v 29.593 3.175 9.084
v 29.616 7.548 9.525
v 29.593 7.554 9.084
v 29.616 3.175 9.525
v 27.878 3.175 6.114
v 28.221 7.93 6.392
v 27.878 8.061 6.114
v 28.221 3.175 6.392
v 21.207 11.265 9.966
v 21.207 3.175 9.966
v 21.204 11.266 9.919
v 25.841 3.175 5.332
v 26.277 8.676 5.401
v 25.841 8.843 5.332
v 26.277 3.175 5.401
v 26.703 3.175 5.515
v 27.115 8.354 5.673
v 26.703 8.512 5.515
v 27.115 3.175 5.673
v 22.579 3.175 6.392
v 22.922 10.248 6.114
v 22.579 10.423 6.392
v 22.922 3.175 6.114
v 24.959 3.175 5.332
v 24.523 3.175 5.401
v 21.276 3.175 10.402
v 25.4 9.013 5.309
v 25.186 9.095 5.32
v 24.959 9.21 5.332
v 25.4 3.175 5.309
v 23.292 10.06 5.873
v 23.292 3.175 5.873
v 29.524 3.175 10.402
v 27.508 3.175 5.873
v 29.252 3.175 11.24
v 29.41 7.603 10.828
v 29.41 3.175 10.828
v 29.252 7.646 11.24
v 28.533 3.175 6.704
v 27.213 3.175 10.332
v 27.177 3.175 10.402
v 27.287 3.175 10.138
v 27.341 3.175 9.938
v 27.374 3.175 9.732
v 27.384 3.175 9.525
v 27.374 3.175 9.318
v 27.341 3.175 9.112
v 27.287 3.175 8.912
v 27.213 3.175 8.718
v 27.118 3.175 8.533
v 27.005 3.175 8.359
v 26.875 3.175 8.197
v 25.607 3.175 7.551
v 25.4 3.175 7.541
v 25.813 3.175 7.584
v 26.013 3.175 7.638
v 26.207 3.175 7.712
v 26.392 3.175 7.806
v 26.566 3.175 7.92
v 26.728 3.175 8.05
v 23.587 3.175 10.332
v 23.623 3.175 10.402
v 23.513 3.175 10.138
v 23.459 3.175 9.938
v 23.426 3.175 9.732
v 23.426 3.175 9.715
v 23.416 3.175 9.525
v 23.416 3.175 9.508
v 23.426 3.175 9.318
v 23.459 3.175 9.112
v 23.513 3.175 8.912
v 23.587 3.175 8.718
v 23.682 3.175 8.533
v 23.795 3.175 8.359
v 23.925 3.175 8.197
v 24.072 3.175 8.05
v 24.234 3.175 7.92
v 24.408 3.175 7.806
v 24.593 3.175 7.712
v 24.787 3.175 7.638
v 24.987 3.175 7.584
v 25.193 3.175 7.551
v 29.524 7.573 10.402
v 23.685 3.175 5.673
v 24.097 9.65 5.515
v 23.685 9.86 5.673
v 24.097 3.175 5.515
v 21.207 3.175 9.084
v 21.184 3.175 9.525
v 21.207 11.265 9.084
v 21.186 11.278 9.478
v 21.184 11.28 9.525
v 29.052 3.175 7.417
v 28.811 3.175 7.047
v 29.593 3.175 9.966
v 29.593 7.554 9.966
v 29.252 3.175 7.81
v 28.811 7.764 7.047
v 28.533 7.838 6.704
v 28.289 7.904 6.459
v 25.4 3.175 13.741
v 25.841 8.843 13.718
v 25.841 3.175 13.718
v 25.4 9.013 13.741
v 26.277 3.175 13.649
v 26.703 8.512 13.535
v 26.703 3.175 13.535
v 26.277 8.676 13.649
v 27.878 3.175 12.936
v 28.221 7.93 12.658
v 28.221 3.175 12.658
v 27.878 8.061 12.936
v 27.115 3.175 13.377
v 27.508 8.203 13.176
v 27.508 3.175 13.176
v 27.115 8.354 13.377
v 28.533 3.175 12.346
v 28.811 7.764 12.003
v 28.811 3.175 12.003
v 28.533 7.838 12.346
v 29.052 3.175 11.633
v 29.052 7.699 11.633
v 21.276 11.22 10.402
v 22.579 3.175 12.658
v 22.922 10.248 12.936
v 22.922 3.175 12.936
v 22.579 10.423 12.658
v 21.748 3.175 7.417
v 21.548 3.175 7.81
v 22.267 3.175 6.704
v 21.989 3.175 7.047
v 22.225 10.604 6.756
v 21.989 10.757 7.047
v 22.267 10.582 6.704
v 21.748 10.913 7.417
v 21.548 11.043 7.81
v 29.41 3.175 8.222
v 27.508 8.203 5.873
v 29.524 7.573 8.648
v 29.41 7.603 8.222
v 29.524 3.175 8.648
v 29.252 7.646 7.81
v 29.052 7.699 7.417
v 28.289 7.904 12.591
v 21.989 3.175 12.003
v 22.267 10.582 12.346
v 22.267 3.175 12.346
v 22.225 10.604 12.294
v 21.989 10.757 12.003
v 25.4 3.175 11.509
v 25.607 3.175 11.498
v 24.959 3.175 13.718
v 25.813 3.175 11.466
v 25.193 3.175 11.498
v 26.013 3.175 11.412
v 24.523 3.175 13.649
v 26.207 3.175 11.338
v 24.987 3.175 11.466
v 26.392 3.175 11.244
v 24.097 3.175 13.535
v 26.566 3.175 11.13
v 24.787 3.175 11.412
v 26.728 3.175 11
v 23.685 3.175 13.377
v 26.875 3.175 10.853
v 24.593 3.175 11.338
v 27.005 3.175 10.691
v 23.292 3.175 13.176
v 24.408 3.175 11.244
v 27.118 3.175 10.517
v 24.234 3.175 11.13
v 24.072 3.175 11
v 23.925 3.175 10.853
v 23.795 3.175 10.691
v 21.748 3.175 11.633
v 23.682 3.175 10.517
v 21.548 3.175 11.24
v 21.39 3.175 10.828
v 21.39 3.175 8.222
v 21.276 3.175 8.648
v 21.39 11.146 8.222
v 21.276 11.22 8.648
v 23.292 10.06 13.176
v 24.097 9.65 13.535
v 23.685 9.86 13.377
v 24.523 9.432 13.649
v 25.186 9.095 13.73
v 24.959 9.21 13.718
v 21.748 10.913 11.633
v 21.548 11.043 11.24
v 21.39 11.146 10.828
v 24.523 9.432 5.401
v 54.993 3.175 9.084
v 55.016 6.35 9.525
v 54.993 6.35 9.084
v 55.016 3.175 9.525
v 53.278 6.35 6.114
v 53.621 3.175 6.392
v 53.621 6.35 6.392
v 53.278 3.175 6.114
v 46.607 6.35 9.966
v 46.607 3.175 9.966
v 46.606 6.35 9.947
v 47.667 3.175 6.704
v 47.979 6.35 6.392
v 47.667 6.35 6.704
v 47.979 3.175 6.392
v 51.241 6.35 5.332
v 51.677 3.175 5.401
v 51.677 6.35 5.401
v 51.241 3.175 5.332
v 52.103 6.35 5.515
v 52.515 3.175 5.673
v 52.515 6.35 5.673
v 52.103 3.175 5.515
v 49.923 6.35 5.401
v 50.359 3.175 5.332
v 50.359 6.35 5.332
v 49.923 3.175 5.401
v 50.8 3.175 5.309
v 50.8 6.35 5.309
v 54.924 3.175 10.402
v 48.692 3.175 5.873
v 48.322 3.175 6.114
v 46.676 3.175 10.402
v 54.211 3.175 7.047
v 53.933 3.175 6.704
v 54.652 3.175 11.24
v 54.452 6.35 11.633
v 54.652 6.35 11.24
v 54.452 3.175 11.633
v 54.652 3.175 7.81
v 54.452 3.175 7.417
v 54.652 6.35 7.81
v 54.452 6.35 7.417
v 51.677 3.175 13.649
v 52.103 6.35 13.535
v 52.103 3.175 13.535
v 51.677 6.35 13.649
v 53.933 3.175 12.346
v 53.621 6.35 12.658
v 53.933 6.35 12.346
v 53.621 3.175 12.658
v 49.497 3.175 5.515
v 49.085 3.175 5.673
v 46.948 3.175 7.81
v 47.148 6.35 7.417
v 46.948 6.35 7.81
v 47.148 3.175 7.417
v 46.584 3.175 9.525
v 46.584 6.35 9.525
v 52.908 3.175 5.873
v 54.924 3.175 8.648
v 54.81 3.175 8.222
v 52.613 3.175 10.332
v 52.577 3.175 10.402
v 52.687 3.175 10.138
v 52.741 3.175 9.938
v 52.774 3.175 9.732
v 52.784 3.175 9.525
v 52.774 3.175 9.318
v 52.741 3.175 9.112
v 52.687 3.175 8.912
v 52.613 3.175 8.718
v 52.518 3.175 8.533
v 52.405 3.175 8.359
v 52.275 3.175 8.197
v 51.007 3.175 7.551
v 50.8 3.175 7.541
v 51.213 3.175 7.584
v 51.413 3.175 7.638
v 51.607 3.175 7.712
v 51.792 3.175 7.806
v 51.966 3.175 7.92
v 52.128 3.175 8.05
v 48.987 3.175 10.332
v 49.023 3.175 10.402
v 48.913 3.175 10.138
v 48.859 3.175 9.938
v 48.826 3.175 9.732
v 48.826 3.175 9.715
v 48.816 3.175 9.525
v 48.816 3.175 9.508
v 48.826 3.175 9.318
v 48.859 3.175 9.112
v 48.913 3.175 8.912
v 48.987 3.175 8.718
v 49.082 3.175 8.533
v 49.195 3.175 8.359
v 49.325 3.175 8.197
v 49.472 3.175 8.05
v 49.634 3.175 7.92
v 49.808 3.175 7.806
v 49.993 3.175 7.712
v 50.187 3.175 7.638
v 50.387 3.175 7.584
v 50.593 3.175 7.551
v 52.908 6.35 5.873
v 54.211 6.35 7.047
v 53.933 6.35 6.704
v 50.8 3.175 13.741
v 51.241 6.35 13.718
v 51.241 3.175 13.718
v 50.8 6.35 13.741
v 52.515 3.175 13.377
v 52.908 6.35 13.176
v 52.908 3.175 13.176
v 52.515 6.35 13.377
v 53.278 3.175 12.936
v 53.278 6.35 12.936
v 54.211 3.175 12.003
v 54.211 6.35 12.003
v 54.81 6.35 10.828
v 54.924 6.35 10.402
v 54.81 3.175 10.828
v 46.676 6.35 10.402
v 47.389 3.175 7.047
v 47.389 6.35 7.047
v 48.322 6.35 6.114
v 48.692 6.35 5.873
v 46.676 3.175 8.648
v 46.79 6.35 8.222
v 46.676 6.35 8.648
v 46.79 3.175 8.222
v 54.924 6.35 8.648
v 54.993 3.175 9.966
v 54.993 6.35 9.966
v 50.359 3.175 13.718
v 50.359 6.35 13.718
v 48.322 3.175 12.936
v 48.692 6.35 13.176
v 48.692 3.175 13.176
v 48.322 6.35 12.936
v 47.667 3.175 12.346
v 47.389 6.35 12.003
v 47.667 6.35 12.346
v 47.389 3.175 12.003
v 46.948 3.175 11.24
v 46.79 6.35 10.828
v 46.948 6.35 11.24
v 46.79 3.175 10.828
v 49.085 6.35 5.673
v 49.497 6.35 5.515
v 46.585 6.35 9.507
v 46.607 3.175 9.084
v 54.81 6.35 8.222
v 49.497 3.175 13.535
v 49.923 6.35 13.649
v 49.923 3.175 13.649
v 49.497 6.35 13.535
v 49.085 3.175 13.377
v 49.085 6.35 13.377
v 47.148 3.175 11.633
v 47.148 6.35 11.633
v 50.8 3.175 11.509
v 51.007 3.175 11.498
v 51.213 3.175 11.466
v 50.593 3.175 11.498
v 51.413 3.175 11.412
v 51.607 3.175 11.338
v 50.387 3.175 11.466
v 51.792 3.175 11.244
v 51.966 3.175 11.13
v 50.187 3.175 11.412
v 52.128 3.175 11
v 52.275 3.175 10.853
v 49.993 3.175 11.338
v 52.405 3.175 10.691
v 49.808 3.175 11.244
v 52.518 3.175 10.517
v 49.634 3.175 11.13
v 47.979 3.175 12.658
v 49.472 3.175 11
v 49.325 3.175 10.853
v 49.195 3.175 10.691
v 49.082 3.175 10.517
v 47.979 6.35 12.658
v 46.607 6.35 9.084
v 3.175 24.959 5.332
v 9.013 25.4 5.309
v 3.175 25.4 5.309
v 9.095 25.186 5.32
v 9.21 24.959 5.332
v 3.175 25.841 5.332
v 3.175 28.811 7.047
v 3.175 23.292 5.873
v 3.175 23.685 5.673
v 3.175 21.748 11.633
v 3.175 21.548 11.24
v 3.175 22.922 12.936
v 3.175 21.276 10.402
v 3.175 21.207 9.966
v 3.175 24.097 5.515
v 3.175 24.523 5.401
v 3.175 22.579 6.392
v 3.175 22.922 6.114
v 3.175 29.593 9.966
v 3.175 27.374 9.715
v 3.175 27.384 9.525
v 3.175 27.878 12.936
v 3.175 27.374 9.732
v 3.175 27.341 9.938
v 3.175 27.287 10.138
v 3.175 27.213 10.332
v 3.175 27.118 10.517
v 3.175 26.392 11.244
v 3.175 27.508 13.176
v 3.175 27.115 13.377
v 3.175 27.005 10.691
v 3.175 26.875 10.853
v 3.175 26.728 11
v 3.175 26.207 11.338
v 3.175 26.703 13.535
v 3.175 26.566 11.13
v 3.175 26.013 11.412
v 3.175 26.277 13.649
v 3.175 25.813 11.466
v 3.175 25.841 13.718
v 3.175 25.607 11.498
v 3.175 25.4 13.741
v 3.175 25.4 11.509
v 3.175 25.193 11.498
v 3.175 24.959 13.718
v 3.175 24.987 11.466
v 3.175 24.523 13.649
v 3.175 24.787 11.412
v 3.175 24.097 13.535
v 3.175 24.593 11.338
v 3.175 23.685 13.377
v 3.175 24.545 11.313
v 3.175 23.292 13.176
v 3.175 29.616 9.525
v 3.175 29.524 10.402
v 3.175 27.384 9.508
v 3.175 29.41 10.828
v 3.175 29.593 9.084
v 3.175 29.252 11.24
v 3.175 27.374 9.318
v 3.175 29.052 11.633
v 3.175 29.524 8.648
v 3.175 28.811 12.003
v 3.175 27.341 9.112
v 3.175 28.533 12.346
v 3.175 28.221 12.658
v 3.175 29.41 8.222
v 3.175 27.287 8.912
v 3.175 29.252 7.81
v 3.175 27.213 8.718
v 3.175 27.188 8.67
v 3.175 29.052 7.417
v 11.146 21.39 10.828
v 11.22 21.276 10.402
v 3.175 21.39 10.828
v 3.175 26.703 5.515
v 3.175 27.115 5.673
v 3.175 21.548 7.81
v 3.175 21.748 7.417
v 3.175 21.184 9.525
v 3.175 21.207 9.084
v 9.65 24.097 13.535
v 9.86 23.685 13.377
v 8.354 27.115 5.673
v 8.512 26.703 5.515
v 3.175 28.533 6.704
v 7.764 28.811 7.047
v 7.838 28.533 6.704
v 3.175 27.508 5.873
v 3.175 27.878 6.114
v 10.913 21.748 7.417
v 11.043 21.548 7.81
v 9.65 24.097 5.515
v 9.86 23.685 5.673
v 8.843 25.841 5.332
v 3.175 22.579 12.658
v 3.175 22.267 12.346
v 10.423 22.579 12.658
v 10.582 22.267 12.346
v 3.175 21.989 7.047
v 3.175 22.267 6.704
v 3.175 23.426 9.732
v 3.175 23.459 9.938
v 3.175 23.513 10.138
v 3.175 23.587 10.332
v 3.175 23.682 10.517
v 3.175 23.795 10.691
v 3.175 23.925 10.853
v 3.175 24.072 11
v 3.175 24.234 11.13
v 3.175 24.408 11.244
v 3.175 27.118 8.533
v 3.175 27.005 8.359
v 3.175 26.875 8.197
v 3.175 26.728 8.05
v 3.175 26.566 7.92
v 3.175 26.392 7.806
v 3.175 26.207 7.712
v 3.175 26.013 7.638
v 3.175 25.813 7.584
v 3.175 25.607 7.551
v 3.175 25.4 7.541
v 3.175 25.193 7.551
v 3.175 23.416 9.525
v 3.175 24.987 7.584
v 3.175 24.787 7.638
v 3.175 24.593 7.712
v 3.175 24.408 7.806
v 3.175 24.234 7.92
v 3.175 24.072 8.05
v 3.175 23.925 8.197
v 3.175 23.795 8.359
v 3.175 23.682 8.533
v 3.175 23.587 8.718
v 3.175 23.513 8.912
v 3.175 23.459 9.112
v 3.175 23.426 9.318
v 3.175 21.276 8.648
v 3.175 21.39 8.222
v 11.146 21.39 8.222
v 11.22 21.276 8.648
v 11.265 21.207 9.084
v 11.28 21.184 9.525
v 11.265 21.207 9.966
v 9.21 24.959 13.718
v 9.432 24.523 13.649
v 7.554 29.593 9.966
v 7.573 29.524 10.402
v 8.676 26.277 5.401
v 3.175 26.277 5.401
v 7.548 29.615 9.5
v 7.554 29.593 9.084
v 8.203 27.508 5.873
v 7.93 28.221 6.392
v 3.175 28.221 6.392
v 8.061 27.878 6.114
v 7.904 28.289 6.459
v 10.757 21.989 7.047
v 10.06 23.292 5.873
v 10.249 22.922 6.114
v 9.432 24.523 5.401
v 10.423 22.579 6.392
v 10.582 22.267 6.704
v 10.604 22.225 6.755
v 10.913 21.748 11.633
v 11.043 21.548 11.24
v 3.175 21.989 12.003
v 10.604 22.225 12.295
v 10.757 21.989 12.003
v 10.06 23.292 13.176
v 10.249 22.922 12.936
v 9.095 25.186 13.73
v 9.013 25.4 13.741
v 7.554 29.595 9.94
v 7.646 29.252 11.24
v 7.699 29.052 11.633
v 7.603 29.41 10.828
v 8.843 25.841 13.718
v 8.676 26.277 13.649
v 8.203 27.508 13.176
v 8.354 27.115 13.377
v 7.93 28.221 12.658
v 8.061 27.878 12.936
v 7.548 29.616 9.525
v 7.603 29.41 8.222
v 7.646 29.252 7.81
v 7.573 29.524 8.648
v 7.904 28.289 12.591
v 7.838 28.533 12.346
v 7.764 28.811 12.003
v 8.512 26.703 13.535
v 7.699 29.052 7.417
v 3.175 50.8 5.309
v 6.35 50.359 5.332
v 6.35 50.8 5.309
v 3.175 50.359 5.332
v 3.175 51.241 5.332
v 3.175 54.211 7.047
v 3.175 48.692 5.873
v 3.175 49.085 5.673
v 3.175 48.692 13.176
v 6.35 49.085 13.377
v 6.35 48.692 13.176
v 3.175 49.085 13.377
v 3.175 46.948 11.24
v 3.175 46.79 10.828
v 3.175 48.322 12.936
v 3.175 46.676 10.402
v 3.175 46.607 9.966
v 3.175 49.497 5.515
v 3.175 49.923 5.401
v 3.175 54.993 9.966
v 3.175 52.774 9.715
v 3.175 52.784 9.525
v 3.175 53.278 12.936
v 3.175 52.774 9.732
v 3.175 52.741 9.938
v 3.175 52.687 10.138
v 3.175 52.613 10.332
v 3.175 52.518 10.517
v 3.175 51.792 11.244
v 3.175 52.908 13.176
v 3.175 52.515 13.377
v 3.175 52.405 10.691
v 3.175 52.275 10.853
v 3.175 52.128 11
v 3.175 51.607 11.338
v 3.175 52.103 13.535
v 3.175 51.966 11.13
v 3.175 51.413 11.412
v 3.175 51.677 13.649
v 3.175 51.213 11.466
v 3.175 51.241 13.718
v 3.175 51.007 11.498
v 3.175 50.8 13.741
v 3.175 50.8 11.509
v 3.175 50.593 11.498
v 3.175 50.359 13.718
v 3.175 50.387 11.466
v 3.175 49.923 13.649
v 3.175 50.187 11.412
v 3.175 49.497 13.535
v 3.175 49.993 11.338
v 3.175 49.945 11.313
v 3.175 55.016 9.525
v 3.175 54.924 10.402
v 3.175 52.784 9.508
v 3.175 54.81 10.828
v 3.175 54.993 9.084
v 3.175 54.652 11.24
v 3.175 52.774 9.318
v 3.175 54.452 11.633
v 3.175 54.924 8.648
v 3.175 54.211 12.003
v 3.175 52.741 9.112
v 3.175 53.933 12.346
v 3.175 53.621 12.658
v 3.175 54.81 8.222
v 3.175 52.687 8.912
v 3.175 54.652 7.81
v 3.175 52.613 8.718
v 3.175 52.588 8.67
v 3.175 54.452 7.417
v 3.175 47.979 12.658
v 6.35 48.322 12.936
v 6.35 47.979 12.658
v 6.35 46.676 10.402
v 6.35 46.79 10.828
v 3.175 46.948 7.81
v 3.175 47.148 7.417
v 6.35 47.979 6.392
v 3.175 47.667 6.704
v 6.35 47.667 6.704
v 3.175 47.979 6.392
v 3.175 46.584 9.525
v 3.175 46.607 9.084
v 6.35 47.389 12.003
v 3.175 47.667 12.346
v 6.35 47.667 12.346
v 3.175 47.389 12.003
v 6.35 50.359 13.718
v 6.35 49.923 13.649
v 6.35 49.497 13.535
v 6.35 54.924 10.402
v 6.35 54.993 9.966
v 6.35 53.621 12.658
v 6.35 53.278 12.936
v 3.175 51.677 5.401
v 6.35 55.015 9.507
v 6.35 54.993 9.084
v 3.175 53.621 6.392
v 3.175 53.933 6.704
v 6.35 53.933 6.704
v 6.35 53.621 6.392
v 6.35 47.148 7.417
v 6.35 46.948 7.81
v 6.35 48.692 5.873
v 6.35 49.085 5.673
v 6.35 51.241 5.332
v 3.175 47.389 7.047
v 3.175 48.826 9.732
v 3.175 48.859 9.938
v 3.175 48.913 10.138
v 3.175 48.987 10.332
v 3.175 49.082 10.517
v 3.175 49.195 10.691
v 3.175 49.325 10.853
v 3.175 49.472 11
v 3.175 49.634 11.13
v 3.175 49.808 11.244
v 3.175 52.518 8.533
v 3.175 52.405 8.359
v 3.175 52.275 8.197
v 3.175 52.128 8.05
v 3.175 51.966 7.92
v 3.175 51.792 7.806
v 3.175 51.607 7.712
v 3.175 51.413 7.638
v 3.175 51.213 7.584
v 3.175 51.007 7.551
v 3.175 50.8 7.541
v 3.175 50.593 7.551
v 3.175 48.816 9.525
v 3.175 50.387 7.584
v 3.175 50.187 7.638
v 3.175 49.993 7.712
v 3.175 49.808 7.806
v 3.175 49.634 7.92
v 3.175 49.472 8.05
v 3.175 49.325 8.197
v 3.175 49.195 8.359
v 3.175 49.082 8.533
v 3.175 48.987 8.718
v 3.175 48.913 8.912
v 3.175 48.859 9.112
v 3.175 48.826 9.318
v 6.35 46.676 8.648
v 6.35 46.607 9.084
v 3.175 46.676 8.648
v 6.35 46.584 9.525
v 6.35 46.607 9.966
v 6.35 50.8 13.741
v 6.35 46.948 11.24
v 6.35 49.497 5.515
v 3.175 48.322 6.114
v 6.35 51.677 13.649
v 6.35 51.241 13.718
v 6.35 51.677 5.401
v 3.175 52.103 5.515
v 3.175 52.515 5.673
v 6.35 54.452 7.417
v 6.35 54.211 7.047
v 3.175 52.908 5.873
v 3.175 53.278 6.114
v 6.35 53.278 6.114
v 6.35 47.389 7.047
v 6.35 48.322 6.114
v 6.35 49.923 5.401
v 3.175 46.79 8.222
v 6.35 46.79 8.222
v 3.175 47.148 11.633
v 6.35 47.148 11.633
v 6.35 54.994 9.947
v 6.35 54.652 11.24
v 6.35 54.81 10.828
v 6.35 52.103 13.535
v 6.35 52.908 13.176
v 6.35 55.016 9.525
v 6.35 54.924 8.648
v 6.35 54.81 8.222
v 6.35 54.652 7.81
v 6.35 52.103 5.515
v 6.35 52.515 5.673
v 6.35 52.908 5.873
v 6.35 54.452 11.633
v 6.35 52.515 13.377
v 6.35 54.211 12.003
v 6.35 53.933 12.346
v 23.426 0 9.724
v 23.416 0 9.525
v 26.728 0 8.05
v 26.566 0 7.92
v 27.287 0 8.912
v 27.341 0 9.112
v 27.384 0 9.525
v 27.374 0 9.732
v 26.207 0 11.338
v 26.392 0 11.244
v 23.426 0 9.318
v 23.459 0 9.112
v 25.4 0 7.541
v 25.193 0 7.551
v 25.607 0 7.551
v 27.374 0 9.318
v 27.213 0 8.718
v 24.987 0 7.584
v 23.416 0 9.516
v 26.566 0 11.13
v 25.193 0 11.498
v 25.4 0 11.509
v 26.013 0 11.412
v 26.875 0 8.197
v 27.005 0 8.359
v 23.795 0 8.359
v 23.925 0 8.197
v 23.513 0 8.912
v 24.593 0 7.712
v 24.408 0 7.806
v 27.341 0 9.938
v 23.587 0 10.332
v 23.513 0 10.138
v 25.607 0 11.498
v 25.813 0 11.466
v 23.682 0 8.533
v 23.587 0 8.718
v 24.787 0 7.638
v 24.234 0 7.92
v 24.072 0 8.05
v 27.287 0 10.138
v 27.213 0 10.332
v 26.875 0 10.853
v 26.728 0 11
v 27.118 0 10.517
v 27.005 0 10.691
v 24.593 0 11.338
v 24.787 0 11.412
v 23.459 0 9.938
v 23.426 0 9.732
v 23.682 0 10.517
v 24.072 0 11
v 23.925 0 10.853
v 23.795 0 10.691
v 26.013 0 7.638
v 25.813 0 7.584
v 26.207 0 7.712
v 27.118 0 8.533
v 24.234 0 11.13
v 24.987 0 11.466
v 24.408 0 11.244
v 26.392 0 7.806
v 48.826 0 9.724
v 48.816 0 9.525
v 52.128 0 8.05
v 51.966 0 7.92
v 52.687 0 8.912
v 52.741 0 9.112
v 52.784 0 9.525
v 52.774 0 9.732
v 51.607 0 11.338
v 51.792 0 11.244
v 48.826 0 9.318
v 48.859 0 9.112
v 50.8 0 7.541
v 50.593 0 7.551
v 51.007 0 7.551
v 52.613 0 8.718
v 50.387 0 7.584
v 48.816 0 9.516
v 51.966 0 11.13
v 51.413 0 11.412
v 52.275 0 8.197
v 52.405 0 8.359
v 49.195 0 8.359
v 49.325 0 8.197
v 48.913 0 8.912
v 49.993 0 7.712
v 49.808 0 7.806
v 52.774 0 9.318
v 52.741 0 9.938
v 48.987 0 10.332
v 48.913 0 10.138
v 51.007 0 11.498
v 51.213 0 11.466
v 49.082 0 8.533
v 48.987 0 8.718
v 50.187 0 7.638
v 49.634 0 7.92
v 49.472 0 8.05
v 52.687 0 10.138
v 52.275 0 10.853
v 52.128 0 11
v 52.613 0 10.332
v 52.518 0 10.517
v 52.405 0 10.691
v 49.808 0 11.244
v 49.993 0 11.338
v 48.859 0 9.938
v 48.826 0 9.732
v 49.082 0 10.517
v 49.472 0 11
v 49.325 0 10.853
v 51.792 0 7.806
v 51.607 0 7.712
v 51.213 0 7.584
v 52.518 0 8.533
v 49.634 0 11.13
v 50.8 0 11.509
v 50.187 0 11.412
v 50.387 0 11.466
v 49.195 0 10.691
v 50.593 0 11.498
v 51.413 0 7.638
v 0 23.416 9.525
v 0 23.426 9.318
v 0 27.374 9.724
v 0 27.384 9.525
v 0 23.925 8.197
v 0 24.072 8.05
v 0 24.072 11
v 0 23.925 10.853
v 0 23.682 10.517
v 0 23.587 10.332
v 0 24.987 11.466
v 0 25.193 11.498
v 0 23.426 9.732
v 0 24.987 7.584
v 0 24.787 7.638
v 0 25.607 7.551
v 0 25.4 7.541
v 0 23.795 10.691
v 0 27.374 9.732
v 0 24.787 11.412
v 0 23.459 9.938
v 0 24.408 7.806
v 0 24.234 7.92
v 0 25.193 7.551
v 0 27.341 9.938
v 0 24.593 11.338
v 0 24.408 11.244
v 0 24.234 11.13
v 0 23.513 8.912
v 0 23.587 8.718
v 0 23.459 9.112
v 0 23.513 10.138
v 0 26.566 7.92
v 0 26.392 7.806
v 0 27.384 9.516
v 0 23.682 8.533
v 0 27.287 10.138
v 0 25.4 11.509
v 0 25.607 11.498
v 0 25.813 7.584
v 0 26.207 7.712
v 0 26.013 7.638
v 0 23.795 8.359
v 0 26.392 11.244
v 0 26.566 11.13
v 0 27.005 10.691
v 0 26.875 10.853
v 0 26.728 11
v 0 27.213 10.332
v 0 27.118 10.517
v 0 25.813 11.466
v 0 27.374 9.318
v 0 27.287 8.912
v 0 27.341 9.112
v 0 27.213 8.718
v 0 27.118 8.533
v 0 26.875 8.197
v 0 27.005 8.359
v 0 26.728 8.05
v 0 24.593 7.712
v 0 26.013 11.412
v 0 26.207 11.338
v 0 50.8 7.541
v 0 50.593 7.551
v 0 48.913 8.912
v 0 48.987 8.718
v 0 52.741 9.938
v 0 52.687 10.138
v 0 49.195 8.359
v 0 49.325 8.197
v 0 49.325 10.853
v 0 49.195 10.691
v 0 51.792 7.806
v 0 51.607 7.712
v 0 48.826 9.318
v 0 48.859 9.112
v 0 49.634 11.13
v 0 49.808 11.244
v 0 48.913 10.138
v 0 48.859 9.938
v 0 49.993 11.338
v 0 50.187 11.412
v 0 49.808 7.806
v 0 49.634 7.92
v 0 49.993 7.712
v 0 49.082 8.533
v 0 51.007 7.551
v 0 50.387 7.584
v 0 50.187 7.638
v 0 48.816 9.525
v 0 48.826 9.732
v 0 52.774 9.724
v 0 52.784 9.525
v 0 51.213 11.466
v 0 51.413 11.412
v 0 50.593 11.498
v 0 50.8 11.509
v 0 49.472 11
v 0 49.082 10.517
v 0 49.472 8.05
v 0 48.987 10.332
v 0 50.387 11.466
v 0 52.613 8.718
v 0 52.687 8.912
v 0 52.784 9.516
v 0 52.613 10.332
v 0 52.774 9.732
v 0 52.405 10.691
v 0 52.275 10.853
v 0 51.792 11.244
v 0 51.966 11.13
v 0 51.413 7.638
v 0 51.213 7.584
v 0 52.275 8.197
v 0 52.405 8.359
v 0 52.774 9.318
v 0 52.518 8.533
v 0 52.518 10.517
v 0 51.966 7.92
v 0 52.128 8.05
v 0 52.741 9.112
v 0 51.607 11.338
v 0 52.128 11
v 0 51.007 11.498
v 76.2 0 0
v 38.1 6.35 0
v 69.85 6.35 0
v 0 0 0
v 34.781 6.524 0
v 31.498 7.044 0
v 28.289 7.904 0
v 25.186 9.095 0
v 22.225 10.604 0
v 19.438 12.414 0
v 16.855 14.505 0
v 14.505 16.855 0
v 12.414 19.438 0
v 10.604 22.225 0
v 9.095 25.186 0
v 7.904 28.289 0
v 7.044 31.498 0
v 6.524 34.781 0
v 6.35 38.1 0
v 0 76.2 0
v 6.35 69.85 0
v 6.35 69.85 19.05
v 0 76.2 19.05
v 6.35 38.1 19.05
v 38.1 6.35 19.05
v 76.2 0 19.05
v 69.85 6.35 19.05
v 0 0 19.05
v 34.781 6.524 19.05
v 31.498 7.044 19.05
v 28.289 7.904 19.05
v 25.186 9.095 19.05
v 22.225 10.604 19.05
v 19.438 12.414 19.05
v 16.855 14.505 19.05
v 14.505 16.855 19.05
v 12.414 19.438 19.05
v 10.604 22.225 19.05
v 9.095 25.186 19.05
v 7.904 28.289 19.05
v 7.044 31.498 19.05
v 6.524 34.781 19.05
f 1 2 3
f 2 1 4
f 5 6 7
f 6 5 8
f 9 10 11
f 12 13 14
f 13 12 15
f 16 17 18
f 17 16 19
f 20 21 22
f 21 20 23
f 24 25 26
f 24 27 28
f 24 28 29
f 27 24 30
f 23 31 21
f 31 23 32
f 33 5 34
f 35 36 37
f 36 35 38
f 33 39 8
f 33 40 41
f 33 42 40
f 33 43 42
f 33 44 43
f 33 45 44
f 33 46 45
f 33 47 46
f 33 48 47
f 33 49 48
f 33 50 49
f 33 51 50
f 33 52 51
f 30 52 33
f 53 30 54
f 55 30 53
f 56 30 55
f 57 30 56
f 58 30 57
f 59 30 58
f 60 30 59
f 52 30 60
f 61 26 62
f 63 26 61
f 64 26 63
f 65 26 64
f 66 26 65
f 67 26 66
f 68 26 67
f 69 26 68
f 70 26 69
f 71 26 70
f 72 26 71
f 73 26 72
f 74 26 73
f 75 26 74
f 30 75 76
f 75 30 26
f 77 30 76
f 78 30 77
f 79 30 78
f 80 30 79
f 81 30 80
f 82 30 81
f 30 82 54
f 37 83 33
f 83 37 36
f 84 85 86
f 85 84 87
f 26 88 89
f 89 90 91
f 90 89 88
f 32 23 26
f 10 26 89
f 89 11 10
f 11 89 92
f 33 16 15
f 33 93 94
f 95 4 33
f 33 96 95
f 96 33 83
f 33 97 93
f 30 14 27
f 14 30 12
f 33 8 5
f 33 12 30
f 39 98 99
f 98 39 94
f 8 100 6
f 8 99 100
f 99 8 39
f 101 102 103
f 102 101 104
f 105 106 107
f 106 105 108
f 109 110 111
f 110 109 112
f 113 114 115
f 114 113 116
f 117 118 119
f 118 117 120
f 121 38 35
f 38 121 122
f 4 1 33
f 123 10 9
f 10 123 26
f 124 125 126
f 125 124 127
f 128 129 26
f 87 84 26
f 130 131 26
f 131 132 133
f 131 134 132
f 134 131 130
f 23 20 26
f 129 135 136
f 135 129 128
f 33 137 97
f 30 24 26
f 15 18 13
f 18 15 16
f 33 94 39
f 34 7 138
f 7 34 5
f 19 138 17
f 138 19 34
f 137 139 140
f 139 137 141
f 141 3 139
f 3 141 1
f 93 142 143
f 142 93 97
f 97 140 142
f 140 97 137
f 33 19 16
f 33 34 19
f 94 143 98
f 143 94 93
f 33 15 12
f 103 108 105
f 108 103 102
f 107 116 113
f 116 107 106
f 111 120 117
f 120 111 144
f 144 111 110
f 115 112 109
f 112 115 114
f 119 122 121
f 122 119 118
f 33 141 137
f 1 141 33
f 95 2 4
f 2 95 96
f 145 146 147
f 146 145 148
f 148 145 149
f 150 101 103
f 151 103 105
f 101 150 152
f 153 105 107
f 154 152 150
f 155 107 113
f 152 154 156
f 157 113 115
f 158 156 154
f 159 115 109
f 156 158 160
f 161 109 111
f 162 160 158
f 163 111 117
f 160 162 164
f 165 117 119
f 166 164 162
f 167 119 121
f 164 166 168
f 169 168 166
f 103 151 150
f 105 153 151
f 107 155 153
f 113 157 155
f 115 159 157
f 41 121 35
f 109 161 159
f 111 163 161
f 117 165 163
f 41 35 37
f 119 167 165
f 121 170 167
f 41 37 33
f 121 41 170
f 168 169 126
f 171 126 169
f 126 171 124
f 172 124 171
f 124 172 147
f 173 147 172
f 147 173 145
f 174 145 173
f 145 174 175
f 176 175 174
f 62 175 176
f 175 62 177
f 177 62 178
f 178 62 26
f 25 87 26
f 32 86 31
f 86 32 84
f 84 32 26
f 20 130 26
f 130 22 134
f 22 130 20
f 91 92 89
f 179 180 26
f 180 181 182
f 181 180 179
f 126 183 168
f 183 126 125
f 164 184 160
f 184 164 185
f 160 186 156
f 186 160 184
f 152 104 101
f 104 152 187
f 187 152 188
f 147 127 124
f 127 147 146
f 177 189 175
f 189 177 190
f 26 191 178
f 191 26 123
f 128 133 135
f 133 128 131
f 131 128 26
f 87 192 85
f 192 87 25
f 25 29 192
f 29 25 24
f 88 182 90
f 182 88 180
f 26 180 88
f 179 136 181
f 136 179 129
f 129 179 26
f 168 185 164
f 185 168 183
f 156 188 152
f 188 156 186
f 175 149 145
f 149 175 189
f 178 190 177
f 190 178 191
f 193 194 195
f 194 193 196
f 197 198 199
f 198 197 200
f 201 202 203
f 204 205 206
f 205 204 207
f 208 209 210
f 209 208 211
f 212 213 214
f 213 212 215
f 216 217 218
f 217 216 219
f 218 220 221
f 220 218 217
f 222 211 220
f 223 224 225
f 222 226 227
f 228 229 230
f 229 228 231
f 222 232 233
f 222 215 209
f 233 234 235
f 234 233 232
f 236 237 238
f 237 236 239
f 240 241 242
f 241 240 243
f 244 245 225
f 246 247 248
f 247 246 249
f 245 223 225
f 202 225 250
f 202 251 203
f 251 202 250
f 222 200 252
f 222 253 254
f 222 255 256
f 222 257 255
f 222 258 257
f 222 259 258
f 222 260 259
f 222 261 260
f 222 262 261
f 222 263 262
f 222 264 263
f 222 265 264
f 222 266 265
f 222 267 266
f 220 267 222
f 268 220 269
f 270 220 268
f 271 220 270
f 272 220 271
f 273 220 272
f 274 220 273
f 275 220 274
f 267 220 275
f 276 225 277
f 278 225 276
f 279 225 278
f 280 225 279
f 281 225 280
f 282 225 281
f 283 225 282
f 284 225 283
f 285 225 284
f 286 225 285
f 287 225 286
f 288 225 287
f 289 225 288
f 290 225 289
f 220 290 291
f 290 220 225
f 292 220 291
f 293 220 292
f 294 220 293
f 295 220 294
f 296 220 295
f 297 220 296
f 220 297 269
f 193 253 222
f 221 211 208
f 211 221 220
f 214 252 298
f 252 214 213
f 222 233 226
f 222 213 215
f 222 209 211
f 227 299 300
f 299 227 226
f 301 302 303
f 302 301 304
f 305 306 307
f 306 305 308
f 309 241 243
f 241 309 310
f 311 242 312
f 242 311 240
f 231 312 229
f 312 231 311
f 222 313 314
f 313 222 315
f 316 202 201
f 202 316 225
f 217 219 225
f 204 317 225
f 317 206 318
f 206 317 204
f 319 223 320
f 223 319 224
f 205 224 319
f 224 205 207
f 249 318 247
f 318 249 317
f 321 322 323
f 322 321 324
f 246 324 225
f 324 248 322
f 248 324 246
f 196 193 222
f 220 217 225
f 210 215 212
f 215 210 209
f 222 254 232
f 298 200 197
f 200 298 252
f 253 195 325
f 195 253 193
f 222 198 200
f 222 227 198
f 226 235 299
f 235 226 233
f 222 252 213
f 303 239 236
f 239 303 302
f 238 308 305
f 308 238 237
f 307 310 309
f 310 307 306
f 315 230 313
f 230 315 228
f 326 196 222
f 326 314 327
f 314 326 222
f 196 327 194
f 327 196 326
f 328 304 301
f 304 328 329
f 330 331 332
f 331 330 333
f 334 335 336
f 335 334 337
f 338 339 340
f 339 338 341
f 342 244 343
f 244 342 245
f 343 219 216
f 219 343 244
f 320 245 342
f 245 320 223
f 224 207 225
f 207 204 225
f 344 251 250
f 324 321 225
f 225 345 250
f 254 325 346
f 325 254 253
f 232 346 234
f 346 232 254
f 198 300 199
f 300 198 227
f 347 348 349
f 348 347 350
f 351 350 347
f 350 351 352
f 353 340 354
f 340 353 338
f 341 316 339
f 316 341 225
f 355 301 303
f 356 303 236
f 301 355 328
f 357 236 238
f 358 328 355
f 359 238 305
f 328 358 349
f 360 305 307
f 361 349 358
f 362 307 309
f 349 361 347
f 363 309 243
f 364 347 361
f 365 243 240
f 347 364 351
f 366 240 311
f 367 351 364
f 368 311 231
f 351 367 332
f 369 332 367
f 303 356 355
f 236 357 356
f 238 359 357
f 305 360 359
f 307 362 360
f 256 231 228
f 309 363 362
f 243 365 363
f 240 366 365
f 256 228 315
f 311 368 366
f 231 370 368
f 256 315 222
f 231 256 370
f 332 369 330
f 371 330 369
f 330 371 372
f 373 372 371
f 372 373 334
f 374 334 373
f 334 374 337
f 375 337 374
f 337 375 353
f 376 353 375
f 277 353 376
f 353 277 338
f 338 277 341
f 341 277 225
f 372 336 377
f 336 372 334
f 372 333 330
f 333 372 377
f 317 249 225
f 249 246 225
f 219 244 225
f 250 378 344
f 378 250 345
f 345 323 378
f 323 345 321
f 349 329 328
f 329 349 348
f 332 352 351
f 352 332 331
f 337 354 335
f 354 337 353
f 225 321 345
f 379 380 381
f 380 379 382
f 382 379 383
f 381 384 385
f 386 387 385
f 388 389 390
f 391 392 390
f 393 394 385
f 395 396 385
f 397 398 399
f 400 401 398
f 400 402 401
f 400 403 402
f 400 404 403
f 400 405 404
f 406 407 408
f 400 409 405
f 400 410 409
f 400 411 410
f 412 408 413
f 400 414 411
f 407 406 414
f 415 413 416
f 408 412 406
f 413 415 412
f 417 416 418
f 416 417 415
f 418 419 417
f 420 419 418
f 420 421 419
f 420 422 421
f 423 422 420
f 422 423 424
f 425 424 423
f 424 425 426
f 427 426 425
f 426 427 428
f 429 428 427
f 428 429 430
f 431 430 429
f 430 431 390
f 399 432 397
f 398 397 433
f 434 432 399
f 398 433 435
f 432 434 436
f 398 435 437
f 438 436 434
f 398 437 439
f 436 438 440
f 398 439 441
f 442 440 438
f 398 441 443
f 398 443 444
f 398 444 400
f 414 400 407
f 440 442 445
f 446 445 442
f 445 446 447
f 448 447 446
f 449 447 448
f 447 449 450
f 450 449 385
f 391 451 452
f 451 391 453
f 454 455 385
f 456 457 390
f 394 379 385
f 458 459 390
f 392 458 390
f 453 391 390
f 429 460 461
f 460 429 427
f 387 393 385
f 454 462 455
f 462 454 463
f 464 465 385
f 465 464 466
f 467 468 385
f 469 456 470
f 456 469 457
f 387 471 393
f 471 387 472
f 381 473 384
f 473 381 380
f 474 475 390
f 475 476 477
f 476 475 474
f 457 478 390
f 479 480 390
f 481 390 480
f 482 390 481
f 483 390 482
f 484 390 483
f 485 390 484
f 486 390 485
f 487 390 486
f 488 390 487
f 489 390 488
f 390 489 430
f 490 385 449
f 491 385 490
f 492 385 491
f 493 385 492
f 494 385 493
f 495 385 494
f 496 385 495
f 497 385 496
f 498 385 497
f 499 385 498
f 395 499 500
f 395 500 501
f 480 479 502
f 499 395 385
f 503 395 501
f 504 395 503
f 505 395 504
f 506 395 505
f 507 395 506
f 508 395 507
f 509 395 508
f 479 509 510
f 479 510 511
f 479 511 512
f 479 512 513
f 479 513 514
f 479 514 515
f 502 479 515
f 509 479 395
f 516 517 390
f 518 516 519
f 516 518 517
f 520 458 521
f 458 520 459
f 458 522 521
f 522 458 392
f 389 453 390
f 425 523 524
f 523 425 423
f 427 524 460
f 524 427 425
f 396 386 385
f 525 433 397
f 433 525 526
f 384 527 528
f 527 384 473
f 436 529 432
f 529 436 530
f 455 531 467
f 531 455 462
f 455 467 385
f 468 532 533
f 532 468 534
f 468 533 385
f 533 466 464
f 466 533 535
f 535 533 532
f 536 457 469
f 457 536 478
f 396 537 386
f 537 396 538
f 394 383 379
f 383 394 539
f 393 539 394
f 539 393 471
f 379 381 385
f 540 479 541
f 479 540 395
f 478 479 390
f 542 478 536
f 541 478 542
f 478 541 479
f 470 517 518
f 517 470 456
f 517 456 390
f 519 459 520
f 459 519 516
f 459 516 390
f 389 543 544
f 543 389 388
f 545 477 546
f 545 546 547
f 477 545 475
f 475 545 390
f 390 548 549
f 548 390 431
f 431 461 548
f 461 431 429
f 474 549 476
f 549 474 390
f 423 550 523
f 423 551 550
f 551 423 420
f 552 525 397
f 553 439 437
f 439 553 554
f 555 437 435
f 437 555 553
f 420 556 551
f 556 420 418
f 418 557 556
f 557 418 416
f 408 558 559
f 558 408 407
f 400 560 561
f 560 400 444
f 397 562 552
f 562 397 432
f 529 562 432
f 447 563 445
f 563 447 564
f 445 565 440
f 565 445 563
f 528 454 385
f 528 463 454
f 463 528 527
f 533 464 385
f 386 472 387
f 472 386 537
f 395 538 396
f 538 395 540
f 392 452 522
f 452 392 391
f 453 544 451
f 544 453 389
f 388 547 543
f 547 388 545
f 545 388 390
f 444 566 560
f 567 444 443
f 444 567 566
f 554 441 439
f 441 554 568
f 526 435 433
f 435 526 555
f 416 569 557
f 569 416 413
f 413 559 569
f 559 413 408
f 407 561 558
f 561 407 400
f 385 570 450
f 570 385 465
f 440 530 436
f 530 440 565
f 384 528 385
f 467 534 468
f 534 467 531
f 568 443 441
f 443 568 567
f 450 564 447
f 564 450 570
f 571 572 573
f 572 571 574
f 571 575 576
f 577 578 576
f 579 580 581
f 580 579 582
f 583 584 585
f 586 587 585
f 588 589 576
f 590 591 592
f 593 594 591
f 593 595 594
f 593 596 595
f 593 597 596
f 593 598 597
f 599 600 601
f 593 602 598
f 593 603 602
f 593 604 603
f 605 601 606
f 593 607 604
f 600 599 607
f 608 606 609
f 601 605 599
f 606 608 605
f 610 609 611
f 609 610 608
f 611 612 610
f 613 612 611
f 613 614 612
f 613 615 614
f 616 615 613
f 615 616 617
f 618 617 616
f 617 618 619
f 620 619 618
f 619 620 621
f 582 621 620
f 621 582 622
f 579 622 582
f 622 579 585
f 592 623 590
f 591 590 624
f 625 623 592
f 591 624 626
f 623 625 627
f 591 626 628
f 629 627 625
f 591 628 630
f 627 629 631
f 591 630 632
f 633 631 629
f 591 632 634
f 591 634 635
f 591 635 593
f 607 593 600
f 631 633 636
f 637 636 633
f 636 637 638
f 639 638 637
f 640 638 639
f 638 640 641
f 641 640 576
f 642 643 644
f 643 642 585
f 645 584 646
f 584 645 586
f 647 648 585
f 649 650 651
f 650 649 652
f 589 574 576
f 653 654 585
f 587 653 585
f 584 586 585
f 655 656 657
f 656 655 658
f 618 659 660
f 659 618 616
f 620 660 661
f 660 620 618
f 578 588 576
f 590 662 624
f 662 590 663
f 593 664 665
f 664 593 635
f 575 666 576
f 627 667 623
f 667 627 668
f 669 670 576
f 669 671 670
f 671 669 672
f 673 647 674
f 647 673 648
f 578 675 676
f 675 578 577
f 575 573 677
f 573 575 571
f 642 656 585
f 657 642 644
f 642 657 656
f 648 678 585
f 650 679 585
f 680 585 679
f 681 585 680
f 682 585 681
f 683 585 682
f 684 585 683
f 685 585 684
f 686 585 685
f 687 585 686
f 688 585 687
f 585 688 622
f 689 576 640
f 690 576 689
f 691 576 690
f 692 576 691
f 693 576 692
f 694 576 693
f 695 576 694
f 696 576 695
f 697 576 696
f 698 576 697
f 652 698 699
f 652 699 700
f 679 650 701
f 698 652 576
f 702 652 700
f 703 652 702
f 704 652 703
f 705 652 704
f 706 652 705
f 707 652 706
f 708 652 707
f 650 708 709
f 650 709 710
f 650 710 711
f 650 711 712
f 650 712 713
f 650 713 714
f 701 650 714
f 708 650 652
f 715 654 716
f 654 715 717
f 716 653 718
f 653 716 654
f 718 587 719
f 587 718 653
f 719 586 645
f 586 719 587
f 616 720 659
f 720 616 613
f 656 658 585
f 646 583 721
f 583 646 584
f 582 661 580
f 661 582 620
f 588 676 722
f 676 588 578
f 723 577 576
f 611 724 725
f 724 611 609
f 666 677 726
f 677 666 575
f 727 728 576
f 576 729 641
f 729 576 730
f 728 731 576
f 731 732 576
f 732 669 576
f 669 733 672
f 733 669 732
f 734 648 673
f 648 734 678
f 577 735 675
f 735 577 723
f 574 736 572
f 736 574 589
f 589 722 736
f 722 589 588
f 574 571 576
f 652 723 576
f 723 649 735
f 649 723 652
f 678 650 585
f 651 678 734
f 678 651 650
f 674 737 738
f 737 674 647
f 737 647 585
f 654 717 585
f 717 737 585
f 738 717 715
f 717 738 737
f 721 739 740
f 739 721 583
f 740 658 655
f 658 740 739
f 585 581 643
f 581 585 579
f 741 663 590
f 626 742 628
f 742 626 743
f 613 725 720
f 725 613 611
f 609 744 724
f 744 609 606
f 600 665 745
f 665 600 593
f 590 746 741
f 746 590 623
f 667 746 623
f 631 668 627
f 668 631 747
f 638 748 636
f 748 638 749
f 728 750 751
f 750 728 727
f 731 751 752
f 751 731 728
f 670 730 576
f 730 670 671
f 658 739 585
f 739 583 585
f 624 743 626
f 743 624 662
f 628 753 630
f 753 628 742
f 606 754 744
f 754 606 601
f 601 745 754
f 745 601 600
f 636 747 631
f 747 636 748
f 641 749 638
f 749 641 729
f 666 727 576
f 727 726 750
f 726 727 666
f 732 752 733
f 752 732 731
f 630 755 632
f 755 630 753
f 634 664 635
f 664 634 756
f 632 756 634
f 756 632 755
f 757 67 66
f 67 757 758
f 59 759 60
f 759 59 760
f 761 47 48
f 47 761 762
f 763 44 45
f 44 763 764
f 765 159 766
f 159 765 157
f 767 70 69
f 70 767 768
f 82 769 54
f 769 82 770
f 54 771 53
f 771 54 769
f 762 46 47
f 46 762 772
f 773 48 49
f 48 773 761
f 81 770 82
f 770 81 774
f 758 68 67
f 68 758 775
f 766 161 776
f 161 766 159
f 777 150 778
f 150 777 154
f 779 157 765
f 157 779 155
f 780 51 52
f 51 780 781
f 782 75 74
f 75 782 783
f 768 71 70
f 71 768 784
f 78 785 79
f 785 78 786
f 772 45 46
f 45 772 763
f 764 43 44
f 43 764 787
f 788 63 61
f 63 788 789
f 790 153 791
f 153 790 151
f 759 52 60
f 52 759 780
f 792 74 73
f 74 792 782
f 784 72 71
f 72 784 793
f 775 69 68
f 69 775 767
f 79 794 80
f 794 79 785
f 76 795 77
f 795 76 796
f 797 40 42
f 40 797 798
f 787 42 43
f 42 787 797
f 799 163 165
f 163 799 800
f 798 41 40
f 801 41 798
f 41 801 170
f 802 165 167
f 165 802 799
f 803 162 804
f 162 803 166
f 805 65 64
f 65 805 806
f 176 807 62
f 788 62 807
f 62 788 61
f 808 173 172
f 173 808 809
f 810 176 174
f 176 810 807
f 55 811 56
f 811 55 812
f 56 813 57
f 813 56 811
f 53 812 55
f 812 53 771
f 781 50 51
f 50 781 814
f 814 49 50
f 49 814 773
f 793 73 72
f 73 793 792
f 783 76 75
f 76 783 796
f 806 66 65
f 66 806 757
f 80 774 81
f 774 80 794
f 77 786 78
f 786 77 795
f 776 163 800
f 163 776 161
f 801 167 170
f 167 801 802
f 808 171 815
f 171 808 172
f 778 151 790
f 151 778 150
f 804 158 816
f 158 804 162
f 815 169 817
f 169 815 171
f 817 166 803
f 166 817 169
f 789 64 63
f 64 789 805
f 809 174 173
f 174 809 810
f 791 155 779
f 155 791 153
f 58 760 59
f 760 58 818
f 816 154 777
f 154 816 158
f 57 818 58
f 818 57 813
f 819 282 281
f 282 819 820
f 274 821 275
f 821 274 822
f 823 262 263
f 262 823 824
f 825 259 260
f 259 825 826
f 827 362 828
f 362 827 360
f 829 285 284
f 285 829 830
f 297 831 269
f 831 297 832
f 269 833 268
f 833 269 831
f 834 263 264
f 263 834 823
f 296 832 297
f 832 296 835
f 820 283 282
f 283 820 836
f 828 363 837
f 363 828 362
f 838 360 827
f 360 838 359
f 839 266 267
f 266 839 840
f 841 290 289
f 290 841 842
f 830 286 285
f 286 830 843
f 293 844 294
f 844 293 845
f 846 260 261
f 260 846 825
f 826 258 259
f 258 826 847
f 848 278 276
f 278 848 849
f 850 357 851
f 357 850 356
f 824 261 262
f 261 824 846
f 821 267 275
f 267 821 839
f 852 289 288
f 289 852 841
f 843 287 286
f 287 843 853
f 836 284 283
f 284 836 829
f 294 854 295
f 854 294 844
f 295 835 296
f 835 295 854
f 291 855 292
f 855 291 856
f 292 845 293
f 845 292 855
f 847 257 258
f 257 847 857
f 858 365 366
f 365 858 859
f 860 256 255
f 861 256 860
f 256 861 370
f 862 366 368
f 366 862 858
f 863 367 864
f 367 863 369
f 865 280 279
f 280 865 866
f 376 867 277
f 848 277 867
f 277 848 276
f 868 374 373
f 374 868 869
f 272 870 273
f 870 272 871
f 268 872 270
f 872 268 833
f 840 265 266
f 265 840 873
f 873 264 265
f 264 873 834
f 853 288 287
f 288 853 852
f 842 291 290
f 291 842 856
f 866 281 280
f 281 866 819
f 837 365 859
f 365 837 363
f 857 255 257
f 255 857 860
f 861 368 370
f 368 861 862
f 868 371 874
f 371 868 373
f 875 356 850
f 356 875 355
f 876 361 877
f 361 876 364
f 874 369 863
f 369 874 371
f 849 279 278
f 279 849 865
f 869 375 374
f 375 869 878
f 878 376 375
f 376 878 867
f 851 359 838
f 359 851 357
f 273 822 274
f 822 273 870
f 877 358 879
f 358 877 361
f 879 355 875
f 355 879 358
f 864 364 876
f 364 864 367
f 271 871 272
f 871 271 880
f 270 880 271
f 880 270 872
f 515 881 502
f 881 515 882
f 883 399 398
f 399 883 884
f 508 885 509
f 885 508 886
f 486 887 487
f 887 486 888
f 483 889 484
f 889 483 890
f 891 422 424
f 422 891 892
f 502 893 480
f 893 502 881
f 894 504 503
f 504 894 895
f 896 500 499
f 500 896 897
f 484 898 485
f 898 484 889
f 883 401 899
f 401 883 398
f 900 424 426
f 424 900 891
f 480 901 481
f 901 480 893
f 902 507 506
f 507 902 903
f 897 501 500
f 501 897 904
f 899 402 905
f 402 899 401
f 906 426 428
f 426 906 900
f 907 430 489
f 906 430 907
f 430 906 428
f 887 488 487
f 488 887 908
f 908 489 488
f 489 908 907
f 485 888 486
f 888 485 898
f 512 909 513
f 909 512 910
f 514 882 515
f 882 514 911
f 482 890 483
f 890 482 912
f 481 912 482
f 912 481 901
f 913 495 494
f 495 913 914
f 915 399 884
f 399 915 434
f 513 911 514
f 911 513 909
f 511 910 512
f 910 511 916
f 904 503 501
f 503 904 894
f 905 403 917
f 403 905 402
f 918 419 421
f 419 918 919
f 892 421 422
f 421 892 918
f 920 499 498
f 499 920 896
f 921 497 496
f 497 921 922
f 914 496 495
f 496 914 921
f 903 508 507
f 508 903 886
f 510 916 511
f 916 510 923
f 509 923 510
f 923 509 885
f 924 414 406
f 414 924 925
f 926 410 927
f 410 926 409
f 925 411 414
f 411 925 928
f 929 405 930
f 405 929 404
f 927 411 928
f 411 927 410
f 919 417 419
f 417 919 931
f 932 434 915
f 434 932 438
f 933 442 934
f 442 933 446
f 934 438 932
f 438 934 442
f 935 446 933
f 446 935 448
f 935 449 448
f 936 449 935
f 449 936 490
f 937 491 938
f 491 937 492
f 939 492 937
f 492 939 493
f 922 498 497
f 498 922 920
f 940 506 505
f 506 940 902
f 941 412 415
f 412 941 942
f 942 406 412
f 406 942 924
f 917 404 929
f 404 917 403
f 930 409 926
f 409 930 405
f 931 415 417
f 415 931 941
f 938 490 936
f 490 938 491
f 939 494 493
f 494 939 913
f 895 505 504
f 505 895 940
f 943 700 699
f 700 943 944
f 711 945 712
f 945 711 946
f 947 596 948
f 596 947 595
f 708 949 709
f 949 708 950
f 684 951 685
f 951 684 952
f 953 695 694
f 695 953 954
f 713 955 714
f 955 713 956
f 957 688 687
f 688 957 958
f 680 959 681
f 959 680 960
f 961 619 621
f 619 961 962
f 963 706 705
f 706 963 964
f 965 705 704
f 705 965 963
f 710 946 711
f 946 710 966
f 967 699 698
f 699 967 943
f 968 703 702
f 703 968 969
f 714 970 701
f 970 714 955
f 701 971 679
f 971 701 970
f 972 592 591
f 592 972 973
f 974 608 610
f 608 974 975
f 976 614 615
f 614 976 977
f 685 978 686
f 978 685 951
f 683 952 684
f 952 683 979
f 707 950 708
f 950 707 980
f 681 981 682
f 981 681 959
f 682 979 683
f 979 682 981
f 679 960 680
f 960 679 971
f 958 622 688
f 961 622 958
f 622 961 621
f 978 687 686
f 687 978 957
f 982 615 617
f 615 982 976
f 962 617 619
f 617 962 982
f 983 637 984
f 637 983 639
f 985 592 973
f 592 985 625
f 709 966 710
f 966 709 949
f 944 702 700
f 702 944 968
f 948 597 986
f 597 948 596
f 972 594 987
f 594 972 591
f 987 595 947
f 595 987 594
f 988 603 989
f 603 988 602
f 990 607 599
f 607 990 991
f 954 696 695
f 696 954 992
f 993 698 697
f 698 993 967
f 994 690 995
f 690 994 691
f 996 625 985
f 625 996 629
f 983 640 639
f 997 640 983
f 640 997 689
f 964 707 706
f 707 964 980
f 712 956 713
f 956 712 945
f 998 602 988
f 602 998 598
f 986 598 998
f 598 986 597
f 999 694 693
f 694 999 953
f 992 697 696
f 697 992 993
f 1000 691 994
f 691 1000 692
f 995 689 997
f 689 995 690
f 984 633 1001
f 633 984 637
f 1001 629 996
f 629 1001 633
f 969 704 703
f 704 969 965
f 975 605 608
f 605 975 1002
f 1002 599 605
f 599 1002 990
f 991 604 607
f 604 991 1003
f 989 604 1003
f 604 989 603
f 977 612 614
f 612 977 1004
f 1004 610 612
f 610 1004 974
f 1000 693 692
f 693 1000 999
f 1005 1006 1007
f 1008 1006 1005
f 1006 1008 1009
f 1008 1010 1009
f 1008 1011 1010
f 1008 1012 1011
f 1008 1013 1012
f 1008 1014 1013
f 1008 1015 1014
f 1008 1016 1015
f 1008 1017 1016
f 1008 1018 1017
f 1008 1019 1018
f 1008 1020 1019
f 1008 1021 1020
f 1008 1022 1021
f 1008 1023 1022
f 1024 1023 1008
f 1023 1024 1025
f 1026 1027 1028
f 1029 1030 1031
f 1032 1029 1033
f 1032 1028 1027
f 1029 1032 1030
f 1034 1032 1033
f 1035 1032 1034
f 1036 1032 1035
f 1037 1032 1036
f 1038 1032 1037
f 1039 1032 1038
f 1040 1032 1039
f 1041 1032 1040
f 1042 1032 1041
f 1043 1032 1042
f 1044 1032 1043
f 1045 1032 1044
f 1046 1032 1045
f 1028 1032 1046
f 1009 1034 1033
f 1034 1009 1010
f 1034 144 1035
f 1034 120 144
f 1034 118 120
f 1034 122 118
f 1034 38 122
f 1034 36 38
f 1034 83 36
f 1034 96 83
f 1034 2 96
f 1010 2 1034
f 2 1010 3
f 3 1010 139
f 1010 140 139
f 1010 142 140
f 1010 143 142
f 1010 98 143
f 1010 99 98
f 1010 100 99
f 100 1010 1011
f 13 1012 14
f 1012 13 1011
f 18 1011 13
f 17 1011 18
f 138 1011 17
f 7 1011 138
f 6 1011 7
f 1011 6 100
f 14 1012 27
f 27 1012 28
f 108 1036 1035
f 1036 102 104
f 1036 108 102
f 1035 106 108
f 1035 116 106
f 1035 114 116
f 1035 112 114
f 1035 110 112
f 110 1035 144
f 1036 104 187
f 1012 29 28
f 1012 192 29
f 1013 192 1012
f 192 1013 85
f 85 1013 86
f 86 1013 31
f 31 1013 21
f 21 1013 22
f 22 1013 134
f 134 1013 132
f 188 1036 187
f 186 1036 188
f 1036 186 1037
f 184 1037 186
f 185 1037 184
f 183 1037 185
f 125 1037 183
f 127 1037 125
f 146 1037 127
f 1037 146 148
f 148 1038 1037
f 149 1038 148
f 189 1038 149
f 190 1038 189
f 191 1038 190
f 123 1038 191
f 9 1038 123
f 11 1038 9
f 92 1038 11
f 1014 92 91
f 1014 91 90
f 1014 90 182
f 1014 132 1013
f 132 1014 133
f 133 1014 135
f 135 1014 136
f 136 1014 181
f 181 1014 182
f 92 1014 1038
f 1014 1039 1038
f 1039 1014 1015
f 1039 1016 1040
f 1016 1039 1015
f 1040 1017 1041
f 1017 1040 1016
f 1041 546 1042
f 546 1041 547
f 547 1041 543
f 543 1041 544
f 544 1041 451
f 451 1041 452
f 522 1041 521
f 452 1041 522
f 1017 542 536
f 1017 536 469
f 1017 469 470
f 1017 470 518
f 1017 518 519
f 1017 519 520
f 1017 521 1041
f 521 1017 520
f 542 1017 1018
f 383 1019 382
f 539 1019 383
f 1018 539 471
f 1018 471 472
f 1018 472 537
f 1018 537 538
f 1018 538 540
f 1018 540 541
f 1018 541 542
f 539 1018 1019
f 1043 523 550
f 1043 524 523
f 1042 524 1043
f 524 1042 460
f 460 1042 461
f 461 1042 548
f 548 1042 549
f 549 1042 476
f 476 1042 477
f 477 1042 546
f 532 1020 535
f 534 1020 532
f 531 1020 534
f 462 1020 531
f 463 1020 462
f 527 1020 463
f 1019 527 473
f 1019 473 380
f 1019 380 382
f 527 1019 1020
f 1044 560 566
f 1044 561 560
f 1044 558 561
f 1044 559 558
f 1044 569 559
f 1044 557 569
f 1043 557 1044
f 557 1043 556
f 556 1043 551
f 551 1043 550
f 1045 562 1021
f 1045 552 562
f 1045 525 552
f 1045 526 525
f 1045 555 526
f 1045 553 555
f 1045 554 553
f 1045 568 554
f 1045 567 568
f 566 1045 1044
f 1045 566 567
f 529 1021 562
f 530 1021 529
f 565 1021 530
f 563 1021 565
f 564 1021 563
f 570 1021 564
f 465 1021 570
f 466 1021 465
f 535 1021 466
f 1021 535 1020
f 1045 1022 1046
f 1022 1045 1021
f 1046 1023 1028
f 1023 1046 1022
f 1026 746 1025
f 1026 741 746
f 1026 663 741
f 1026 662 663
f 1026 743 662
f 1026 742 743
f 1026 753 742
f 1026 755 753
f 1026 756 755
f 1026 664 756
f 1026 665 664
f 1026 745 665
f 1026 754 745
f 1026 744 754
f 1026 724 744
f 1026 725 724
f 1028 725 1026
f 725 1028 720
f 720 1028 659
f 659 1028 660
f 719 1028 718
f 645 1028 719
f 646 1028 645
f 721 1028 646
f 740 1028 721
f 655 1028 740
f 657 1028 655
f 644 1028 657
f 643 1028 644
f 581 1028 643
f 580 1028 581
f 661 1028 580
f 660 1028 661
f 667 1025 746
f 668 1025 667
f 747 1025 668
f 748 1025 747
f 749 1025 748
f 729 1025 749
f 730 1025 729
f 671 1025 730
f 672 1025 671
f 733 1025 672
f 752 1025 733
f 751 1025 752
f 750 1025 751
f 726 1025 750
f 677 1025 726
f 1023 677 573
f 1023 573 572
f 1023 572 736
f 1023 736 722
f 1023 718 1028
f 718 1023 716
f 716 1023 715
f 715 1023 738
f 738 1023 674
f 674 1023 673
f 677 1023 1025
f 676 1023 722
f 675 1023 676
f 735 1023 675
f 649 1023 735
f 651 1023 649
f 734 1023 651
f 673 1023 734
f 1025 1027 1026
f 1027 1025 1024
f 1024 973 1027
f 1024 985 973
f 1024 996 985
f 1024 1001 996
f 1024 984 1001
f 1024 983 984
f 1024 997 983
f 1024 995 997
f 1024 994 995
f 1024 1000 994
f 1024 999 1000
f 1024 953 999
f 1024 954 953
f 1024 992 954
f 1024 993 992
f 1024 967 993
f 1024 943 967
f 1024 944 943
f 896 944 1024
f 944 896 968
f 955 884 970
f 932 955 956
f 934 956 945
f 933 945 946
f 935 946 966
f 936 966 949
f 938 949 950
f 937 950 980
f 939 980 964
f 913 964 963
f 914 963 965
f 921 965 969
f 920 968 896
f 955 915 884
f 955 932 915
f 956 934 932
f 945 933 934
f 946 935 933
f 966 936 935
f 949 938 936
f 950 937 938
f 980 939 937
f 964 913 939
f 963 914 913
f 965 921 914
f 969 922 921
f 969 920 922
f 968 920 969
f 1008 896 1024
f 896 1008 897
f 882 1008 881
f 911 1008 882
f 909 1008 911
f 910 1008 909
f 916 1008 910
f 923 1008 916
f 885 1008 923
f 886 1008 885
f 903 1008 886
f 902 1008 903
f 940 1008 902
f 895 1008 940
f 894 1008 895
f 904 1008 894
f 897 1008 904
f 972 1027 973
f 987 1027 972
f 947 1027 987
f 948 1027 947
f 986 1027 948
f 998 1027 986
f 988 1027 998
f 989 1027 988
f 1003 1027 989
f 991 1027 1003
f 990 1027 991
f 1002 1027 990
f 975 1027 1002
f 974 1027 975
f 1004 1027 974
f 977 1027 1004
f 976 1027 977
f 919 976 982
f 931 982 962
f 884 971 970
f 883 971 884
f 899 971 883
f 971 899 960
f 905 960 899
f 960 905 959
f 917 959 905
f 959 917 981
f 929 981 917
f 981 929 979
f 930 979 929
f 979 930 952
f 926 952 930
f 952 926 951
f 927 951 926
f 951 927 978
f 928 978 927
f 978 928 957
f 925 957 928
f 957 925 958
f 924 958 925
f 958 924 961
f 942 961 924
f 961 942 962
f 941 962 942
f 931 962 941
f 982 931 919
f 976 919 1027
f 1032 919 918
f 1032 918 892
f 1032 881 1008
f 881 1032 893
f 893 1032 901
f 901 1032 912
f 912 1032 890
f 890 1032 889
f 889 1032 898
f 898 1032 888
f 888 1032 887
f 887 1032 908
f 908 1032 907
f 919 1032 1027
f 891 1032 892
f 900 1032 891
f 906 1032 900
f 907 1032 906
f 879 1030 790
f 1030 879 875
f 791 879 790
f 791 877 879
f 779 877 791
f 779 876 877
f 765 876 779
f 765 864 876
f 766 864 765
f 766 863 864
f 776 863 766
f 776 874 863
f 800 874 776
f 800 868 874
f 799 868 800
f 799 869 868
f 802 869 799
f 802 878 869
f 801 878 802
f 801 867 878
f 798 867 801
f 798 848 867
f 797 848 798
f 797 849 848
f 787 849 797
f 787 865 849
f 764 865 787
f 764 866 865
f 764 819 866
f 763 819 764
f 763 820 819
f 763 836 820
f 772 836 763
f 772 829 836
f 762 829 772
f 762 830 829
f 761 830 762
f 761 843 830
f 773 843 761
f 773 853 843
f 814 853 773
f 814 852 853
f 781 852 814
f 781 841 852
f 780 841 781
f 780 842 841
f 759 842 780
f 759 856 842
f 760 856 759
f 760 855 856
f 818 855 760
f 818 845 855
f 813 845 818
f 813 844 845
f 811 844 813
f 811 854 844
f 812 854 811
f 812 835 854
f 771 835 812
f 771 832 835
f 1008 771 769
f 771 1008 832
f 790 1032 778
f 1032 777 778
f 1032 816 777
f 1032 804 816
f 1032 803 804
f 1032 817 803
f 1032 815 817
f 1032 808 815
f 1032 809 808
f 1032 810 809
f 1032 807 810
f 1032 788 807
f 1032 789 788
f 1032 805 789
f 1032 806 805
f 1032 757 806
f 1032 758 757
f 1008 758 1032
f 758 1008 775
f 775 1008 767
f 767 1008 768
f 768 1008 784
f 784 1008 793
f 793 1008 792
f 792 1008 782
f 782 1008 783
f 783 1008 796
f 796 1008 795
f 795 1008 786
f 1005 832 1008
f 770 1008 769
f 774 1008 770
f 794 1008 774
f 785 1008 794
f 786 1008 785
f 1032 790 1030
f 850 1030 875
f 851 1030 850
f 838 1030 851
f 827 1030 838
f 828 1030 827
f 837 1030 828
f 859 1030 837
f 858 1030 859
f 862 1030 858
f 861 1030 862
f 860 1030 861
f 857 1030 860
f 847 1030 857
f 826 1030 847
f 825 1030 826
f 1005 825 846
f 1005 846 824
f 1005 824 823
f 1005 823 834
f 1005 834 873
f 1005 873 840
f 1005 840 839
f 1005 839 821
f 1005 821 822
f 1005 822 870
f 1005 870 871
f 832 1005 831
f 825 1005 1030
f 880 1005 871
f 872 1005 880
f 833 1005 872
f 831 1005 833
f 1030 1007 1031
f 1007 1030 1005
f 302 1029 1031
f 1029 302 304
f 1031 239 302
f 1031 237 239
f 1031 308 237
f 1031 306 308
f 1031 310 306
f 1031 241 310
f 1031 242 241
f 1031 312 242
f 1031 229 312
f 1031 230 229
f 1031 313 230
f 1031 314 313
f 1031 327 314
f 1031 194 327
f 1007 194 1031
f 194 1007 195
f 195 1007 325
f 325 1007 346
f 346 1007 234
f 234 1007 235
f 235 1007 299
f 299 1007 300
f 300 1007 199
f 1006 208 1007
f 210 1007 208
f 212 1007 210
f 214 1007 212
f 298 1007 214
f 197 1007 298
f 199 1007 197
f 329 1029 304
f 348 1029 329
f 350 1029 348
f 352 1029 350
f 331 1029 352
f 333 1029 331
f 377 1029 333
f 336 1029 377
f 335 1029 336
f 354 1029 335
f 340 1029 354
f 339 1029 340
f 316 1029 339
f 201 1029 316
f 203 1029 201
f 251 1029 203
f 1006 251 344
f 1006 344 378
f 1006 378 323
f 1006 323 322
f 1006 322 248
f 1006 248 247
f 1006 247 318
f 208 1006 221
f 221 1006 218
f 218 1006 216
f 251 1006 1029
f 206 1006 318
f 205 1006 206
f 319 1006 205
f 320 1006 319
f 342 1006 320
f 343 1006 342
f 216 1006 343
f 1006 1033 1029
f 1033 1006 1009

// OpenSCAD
$fn = 60;
$inch = 25.4;

length = 3;
width = 3/4;
thickness = 1/4;
screw_shaft_diameter = 5/32;
screw_head_diameter = 0.332;

scale([$inch, $inch, $inch]) difference() {
    union() {
        bracket();
        truss();
    };
    screw_shafts();
}

module bracket() {
    linear_extrude(0, 0, width) union() {
        difference() {
            polygon([
                [0, 0],
                [length, 0],
                [0, length]
            ]);
            translate([length/2, length/2]) circle(r = length/2 - thickness);
            translate([length/2, thickness]) square(length);
            translate([thickness, length/2]) square(length);
        };
//        polygon([
//            [0, length],
//            [0, length - thickness],
//            [length - thickness, 0],
//            [length, 0]
//        ]);
    }
}

module screw_shafts() {
    translate([length/3, thickness/2, width/2])
        rotate([-90, 0, 0])
            cylinder(h = length, r1 = screw_head_diameter/2, r2 = screw_head_diameter/2);
    translate([length*2/3, thickness/2, width/2])
        rotate([-90, 0, 0])
            cylinder(h = length, r1 = screw_head_diameter/2, r2 = screw_head_diameter/2);
    translate([thickness/2, length/3, width/2])
        rotate([-90, 0, -90])
            cylinder(h = length, r1 = screw_head_diameter/2, r2 = screw_head_diameter/2);
    translate([thickness/2, length*2/3, width/2])
        rotate([-90, 0, -90])
            cylinder(h = length, r1 = screw_head_diameter/2, r2 = screw_head_diameter/2);
    translate([length/3, -thickness/2, width/2])
        rotate([-90, 0, 0])
            cylinder(h = length, r1 = screw_shaft_diameter/2, r2 = screw_shaft_diameter/2);
    translate([length*2/3, -thickness/2, width/2])
        rotate([-90, 0, 0])
            cylinder(h = length, r1 = screw_shaft_diameter/2, r2 = screw_shaft_diameter/2);
    translate([-thickness/2, length/3, width/2])
        rotate([-90, 0, -90])
            cylinder(h = length, r1 = screw_shaft_diameter/2, r2 = screw_shaft_diameter/2);
    translate([-thickness/2, length*2/3, width/2])
        rotate([-90, 0, -90])
            cylinder(h = length, r1 = screw_shaft_diameter/2, r2 = screw_shaft_diameter/2);
}

module truss() {
}
